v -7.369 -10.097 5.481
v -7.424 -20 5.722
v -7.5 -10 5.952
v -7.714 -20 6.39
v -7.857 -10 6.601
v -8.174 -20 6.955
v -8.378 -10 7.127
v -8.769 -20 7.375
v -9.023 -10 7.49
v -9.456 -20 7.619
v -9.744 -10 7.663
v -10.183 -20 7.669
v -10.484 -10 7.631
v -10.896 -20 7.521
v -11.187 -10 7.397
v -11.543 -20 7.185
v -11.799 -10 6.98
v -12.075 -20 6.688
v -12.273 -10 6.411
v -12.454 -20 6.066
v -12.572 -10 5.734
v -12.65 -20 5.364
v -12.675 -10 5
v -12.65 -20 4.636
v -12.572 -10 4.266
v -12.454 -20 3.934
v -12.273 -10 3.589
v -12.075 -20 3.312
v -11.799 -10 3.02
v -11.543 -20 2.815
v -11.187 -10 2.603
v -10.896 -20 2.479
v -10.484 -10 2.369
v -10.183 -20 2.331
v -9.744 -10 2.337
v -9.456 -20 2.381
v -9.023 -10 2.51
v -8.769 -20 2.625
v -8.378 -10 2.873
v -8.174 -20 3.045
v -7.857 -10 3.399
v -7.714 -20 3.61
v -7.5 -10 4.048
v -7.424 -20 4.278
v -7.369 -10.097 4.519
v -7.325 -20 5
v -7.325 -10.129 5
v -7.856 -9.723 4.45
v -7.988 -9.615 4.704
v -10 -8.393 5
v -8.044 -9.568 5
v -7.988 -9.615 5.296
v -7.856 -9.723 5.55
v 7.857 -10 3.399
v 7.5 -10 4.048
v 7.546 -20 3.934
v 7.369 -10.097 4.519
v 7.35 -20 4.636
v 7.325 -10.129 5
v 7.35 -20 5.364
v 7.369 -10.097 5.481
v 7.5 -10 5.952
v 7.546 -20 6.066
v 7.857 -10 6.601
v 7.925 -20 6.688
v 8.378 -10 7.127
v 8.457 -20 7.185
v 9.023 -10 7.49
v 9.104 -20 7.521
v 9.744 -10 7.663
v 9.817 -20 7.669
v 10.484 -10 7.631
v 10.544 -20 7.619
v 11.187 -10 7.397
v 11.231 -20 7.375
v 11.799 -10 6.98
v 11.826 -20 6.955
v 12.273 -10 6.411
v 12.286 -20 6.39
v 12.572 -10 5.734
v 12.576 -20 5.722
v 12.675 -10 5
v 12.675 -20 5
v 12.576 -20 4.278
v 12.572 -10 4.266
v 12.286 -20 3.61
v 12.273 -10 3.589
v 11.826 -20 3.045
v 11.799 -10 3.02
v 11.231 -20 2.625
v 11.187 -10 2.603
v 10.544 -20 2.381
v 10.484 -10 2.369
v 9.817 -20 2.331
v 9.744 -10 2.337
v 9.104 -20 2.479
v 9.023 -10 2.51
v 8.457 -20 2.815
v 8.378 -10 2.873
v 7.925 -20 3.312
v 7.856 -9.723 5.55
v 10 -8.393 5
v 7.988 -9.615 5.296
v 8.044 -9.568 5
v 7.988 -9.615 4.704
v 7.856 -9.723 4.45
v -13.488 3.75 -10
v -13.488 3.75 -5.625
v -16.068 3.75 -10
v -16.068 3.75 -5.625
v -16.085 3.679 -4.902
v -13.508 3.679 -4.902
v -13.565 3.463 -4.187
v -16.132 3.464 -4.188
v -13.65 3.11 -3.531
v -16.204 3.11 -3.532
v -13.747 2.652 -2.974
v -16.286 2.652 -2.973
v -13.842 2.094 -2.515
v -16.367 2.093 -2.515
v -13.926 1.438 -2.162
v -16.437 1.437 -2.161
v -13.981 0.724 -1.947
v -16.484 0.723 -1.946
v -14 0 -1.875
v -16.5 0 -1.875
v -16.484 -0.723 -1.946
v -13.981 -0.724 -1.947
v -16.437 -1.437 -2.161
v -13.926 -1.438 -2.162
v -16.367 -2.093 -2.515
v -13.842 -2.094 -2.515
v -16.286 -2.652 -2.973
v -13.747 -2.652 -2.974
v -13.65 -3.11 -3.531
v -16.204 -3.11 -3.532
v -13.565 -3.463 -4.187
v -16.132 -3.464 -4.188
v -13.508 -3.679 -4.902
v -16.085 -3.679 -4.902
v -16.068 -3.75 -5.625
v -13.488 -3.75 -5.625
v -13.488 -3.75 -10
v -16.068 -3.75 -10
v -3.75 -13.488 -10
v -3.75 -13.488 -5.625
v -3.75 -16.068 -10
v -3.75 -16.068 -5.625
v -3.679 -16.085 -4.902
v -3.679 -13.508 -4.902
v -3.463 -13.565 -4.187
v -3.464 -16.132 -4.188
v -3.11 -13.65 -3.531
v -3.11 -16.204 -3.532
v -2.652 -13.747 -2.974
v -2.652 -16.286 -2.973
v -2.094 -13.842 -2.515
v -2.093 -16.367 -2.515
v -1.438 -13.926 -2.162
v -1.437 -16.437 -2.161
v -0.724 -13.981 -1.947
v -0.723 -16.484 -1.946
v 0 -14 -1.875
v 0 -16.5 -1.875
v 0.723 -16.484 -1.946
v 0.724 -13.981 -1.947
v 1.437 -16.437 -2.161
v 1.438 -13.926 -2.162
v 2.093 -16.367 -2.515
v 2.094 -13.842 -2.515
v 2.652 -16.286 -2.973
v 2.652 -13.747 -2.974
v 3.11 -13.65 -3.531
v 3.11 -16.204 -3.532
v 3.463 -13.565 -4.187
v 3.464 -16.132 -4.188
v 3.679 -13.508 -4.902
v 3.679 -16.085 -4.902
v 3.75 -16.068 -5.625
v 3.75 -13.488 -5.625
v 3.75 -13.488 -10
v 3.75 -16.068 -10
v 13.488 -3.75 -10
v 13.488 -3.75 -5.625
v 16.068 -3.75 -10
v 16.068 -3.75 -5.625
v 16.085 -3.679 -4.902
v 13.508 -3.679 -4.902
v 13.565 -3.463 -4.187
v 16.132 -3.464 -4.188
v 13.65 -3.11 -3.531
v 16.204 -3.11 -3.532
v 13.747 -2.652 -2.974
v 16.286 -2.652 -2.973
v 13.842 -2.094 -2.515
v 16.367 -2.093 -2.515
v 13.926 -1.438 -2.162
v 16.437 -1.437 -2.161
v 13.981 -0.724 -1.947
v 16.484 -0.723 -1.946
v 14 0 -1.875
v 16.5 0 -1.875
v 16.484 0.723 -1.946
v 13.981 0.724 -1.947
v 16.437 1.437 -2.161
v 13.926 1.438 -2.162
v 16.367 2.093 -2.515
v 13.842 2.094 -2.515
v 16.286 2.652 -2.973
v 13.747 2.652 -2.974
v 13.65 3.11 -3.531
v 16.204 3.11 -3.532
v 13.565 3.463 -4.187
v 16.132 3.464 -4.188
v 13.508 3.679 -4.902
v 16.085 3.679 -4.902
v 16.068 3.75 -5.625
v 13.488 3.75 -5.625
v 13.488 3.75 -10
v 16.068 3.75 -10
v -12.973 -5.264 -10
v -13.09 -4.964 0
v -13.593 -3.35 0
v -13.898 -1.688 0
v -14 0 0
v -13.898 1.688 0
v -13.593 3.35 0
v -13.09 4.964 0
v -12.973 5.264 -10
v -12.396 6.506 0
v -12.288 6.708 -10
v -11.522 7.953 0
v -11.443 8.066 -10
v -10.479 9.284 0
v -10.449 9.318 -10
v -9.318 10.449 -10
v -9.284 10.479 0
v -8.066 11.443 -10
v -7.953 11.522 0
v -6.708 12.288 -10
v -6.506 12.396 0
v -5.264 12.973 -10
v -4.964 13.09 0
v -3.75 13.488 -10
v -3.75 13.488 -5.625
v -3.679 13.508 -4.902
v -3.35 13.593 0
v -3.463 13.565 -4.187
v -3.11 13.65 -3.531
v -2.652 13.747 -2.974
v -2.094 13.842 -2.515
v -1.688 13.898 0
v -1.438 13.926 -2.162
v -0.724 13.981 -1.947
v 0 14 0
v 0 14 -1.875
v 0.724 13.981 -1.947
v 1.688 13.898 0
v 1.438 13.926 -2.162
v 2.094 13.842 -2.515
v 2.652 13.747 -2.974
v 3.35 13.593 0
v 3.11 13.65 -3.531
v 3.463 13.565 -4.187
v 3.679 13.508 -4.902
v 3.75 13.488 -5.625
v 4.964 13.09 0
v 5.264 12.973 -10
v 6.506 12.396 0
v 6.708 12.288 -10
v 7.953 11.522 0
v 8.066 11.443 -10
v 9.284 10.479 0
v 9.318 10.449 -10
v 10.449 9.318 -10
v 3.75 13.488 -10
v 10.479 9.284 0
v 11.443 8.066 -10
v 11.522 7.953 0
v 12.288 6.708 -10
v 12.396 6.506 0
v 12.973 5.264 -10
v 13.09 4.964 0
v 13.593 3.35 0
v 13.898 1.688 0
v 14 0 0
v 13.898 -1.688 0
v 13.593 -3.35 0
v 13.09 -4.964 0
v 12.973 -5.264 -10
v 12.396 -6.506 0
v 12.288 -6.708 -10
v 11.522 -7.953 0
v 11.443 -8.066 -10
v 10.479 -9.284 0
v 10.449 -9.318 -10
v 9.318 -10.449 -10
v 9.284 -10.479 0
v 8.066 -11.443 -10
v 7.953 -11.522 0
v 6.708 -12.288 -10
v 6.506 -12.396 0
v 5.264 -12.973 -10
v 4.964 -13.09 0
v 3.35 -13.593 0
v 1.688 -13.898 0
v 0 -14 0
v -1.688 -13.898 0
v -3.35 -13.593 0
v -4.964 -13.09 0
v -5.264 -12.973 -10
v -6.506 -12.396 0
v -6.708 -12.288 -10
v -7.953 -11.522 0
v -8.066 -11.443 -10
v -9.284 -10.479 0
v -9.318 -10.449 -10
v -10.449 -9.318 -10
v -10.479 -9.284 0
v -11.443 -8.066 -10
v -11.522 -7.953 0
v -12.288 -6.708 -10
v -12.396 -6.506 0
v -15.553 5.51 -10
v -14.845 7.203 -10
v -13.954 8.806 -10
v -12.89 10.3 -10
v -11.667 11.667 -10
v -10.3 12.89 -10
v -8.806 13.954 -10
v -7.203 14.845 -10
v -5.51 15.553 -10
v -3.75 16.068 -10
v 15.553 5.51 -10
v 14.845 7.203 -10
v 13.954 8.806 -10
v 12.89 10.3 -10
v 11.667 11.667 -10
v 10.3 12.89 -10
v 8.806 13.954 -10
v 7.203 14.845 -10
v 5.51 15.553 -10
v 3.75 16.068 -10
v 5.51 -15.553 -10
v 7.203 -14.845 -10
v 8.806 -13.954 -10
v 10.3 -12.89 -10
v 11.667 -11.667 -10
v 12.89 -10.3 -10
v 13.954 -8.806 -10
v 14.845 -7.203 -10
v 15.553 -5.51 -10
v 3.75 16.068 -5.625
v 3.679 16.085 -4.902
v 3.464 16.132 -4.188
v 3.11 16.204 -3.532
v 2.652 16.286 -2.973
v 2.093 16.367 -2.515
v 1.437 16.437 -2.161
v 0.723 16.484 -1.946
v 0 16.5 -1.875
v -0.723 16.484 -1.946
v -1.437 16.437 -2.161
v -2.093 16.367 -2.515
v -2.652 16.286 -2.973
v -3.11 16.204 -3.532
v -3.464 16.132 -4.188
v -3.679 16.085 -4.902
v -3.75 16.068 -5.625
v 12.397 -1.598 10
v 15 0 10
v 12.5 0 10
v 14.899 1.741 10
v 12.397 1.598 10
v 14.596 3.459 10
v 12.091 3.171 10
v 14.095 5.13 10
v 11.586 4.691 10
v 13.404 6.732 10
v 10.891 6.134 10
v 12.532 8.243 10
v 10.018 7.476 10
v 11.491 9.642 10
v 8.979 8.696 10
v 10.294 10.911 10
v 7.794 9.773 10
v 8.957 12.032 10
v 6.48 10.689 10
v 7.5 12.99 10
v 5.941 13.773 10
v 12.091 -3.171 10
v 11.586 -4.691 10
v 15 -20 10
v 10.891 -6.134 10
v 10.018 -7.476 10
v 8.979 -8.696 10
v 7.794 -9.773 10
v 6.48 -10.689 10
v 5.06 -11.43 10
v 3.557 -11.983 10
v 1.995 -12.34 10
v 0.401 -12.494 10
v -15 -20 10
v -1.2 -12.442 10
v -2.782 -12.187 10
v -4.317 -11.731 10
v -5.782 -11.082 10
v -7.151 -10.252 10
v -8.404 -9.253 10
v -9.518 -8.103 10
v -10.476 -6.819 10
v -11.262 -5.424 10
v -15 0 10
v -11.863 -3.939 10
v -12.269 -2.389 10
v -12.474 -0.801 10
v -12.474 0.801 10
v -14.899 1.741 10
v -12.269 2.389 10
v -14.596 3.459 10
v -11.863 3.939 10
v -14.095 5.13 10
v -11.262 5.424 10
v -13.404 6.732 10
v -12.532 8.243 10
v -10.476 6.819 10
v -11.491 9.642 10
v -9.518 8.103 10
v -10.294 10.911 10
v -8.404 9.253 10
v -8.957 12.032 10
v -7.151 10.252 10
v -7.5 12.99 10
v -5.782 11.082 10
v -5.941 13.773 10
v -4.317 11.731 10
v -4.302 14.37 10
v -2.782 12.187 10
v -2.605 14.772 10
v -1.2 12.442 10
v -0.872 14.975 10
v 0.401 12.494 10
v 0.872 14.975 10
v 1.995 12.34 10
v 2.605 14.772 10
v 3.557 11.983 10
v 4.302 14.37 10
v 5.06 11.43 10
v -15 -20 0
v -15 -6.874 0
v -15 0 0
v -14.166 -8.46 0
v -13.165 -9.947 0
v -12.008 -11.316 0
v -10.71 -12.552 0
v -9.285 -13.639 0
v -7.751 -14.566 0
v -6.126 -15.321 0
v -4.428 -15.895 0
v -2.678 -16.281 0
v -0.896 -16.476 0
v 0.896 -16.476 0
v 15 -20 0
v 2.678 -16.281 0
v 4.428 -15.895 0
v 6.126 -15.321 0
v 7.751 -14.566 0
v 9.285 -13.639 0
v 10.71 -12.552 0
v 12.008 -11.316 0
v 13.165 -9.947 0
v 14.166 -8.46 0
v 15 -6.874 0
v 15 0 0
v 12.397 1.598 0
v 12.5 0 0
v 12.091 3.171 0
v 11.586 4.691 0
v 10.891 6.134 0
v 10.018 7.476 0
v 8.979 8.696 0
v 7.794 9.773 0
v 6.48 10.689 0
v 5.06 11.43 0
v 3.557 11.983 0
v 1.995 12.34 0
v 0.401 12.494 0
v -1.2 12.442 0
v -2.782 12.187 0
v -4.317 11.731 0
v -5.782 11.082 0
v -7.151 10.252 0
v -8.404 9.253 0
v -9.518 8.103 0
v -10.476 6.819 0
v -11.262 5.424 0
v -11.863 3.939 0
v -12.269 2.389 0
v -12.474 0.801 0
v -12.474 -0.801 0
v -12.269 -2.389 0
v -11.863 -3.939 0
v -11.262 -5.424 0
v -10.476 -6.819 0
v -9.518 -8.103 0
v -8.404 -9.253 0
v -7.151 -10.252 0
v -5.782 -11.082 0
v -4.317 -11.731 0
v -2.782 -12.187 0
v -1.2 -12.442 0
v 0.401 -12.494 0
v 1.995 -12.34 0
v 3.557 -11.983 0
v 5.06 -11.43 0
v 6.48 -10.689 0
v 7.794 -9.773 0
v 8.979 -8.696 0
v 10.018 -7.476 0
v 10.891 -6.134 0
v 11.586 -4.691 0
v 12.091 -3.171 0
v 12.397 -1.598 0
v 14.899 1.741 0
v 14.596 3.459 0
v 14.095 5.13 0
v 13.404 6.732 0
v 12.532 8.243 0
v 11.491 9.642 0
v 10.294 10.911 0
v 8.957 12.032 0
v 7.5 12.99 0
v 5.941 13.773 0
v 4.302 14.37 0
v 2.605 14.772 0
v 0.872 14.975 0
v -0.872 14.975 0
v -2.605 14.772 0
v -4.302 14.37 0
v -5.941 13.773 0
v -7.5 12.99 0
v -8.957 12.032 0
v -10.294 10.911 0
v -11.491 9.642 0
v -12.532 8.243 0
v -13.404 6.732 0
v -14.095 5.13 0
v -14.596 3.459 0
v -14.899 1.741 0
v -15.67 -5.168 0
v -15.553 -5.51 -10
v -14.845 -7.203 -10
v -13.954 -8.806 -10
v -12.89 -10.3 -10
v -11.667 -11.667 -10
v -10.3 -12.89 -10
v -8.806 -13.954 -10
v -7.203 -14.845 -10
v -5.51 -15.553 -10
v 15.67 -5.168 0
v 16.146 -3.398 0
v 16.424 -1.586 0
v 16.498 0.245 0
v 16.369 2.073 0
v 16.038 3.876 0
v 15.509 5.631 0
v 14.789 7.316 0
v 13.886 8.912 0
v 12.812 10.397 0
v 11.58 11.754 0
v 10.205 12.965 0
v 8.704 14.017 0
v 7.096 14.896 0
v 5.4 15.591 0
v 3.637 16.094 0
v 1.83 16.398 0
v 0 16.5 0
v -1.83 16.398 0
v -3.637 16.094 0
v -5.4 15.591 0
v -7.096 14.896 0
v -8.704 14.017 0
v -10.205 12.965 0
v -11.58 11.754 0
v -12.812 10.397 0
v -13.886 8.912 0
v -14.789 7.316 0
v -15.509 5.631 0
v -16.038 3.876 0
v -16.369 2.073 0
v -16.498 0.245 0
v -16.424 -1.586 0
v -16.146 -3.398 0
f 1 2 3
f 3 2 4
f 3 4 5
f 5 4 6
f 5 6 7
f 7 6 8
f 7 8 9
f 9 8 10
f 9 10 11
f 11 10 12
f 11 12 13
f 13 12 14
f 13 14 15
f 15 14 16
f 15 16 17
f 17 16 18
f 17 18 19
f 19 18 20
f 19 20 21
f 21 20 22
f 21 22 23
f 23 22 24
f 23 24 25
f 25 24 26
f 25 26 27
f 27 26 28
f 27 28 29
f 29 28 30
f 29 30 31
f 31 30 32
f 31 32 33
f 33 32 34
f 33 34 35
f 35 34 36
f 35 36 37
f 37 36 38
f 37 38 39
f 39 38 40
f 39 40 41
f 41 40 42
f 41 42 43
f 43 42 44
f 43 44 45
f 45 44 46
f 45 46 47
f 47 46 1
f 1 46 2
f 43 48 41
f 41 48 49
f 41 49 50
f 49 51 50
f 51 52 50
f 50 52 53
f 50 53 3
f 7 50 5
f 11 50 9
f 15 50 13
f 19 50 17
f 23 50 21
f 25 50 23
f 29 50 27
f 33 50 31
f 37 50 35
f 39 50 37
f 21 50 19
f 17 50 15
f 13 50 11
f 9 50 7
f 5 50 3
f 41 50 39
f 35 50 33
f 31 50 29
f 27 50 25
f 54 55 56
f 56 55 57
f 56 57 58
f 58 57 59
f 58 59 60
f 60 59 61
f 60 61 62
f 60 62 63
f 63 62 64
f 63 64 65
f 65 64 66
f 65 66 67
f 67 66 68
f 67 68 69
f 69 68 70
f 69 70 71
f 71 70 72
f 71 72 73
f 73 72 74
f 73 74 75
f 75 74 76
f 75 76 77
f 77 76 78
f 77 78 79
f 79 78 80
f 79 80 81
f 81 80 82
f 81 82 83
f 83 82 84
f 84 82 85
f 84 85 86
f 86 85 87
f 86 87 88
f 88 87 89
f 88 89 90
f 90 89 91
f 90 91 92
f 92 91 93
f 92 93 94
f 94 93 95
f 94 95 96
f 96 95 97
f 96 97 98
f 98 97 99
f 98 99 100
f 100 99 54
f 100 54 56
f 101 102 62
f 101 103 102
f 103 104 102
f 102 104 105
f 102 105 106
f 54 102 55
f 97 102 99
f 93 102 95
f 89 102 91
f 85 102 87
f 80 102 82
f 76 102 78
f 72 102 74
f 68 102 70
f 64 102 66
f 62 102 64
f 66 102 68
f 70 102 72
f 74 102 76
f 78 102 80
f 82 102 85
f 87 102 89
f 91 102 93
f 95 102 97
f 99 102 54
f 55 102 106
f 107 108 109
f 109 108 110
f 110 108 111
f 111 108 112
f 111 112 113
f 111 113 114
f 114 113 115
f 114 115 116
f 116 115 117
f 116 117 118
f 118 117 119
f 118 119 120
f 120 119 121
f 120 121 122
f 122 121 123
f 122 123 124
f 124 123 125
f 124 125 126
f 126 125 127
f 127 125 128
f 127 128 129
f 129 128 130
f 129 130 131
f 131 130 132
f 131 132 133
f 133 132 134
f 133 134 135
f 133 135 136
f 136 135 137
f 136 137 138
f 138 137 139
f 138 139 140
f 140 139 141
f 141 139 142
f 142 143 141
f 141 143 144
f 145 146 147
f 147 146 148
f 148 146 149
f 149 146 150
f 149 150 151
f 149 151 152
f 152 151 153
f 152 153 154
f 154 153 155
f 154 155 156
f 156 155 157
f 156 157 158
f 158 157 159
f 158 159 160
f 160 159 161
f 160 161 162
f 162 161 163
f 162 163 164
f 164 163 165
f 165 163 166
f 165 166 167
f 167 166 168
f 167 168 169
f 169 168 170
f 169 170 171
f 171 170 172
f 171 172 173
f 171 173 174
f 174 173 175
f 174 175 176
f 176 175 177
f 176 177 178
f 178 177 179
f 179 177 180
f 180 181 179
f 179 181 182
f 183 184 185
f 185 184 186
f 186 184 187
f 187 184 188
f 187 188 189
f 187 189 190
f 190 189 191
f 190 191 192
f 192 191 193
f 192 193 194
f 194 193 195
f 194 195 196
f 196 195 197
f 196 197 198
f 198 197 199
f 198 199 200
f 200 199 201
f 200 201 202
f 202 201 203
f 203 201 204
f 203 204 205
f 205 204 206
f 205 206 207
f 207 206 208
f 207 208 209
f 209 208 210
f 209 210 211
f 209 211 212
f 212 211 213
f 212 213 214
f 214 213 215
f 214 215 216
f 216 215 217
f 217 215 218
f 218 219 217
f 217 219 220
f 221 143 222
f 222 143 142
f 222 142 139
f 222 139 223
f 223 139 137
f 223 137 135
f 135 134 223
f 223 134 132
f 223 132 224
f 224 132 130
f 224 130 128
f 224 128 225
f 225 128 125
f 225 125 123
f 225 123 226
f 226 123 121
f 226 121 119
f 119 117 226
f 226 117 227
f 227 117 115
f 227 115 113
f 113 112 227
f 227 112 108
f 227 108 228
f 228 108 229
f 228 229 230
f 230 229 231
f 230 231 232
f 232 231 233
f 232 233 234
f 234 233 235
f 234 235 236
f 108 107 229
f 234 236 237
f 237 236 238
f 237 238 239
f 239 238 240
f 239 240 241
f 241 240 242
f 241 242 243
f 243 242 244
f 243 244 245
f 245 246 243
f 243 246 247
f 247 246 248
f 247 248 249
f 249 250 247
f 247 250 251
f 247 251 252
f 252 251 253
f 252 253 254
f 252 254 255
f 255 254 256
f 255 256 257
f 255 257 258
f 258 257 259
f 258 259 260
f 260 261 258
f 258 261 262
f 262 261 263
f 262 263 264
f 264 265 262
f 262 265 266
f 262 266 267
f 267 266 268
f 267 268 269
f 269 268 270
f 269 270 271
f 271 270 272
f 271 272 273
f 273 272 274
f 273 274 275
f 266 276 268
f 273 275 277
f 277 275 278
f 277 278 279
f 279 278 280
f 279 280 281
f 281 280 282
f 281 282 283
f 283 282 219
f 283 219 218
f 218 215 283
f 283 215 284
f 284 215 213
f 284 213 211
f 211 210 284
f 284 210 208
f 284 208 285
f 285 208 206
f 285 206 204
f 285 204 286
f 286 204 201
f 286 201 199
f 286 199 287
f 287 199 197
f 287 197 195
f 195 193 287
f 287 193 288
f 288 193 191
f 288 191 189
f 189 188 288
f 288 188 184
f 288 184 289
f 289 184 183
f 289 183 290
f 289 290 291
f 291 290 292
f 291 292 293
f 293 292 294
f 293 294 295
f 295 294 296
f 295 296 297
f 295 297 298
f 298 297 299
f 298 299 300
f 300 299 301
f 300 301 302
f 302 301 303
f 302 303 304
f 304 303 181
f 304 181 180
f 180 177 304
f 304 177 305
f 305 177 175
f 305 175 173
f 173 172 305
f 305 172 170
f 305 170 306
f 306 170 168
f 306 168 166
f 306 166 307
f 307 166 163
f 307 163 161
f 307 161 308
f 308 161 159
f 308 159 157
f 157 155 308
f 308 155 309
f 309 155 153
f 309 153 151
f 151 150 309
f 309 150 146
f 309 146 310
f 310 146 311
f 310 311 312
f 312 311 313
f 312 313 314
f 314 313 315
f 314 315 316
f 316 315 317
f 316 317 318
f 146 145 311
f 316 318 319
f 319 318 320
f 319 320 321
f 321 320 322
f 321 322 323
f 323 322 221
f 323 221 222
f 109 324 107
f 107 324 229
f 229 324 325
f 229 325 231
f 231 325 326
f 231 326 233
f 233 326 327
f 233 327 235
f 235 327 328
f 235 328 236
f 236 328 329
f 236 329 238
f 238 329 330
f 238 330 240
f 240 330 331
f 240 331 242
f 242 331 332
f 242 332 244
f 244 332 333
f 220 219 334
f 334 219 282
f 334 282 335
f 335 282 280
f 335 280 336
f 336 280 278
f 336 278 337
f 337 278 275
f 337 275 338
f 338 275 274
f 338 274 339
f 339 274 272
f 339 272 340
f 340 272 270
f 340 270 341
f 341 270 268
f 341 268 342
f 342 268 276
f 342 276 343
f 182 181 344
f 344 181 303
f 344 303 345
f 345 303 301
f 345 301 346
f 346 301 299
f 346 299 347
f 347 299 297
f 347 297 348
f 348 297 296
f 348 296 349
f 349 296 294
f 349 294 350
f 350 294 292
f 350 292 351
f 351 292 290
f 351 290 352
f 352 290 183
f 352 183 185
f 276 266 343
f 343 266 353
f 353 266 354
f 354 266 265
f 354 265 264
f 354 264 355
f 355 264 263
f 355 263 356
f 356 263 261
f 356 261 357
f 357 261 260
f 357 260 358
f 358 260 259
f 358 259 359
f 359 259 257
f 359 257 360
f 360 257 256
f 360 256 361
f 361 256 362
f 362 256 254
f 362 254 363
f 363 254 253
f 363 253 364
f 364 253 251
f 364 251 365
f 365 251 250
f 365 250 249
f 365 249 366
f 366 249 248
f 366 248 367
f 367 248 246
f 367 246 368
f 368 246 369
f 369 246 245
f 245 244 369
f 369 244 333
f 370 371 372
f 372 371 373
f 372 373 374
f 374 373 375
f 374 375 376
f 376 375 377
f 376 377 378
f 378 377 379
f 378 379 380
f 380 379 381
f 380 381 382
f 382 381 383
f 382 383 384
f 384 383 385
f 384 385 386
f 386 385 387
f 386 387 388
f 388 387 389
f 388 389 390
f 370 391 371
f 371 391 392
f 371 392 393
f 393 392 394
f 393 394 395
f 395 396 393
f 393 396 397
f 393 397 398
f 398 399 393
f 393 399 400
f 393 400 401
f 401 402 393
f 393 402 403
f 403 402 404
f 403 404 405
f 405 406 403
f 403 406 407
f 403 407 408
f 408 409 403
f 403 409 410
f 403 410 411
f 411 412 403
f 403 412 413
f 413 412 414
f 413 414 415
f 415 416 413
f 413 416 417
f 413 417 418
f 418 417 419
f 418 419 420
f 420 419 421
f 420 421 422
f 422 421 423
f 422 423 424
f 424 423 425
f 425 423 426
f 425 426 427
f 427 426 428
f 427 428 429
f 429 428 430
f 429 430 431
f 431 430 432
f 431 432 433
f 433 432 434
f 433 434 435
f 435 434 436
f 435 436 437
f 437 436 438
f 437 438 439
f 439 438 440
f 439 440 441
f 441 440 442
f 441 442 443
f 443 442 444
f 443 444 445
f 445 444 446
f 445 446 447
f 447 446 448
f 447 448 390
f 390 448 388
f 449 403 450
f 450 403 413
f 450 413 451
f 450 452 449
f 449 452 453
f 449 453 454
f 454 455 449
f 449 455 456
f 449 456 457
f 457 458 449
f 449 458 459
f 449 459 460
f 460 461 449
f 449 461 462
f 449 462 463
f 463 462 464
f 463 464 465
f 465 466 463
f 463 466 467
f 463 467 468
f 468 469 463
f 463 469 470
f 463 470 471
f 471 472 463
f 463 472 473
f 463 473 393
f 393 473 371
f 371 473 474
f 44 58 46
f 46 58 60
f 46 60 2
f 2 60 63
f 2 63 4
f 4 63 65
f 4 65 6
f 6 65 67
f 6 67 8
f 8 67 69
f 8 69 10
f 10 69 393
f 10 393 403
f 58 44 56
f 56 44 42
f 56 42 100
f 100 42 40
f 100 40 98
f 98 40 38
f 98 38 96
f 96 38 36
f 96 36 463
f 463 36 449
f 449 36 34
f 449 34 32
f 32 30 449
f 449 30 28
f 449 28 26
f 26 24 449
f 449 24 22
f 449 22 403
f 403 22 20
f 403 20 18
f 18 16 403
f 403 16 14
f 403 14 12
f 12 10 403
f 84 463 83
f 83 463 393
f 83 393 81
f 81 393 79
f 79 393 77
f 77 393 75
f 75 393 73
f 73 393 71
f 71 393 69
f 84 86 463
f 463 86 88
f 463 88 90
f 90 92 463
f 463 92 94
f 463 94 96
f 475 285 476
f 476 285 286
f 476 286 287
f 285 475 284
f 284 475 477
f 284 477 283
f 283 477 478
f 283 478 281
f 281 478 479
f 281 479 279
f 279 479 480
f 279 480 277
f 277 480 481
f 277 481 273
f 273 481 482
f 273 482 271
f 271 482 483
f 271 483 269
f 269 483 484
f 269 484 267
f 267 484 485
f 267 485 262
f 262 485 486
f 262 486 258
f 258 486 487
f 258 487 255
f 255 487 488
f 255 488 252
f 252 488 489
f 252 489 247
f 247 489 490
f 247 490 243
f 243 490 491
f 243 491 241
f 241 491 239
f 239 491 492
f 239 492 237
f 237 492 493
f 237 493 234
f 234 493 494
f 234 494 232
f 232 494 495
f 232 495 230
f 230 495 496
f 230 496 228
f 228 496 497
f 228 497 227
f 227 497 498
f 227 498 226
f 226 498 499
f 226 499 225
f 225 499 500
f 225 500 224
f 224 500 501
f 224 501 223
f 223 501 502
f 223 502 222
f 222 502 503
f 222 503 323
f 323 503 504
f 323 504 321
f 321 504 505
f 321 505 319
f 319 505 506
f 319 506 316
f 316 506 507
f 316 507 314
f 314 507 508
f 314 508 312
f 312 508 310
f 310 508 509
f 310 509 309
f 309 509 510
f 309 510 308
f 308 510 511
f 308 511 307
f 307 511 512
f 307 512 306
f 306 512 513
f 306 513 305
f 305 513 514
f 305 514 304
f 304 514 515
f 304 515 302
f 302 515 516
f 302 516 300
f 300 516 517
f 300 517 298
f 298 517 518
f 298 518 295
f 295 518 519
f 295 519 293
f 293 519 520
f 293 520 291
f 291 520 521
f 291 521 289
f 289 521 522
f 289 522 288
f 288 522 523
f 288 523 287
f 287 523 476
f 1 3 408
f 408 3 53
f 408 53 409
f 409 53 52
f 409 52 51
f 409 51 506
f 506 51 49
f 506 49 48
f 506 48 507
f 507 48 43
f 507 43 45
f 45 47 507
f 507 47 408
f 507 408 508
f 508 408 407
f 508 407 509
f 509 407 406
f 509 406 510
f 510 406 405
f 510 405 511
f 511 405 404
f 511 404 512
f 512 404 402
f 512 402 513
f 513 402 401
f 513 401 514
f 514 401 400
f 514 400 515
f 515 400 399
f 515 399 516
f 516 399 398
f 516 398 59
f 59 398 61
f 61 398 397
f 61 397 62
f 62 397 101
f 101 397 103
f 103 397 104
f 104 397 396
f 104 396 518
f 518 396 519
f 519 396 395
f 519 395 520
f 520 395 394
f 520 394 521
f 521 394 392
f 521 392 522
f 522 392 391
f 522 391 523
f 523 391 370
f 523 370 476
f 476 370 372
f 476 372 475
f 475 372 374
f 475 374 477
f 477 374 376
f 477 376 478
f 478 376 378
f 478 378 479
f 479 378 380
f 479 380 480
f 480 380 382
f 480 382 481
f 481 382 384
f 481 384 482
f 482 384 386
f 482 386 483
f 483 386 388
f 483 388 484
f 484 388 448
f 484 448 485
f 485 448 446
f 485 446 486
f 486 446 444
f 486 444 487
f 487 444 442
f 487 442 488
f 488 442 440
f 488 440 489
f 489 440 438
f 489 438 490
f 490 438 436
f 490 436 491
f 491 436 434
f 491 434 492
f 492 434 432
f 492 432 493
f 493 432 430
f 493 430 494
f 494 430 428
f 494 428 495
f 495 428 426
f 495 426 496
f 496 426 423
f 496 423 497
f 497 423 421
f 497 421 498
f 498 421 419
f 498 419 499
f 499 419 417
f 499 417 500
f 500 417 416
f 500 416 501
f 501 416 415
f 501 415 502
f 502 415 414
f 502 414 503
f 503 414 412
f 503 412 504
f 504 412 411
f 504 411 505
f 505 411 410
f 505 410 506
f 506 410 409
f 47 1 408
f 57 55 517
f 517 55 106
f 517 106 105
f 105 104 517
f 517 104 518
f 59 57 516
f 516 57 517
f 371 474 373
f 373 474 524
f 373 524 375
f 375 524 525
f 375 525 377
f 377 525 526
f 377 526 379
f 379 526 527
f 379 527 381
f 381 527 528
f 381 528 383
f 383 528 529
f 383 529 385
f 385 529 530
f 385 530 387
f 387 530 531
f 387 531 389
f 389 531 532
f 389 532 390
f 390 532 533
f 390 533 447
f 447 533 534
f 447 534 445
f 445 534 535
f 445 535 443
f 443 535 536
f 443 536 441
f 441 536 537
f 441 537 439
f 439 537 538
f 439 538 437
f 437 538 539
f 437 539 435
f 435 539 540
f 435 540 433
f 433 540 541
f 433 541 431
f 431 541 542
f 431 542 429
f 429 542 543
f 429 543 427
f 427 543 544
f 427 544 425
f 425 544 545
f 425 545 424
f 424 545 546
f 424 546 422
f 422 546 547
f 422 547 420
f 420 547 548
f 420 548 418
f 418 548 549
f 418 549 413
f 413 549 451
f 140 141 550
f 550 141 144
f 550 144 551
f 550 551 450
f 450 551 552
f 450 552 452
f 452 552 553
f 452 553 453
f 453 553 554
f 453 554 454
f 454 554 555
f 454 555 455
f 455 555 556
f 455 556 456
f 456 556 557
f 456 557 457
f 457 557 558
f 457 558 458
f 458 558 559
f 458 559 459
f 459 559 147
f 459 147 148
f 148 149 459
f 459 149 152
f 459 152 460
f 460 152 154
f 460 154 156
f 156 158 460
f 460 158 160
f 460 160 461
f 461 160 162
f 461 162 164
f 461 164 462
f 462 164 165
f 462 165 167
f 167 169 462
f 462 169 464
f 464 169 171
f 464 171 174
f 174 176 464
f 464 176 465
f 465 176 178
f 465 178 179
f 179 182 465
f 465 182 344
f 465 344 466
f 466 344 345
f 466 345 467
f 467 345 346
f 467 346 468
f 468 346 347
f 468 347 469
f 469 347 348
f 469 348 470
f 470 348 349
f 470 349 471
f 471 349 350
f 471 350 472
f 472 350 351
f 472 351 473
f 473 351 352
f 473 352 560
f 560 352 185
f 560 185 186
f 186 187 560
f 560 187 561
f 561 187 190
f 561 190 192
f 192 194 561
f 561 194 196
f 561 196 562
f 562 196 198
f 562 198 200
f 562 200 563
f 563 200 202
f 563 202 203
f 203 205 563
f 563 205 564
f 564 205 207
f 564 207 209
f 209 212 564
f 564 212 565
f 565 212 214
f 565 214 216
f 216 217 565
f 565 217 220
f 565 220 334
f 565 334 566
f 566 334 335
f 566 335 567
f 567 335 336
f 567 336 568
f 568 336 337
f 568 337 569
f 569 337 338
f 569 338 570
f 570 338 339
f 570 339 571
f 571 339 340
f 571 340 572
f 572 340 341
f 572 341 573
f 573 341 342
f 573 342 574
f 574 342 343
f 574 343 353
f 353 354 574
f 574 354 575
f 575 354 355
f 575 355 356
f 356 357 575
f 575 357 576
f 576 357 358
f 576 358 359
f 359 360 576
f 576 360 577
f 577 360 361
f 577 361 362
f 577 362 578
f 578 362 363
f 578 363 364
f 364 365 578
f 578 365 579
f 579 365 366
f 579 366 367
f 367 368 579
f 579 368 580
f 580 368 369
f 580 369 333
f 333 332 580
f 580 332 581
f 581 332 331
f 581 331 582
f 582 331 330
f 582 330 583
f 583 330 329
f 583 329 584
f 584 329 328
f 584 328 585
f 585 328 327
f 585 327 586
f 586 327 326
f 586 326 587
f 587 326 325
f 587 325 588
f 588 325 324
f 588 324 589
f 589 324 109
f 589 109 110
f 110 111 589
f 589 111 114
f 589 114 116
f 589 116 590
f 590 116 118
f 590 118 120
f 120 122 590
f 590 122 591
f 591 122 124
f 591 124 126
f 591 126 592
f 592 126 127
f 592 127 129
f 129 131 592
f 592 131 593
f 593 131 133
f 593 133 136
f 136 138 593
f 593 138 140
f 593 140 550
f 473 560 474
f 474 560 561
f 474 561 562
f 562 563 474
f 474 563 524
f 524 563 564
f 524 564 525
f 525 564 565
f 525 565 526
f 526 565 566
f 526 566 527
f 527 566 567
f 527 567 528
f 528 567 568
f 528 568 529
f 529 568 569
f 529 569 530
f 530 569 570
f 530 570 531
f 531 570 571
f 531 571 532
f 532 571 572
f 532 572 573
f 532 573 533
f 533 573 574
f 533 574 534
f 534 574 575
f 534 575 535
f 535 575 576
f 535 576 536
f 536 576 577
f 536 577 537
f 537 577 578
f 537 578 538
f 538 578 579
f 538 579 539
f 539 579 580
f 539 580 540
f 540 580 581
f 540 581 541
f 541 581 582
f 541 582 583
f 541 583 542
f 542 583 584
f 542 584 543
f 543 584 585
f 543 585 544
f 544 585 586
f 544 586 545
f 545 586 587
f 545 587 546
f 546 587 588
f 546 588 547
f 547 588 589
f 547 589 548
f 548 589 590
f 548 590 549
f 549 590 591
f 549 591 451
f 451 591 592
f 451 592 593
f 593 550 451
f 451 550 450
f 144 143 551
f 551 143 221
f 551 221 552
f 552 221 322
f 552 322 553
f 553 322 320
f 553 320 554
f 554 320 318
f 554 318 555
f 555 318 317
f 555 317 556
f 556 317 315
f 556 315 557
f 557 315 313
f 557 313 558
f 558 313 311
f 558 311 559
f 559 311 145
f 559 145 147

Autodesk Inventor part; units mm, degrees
ref_plane "YZ Plane" through (0, 0, 0) normal (1, 0, 0) x (0, 1, 0)
sketch "Sketch2" plane through (0, 0, 0) normal (0, 0, 1) x (1, 0, 0)
  circle A0 centre (0, 0) radius 14
  circle A1 centre (0, 0) radius 12.5
  circle A2 centre (0, 0) radius 16.5
  circle A3 centre (0, 0) radius 15
  dimension "d0" = 28
  dimension "d1" = 25
  dimension "d2" = 33
  dimension "d3" = 30
extrude "Extrusion1" add sketch "Sketch2" against normal blind 10 contours A2 | A3
extrude "Extrusion2" add sketch "Sketch2" along normal blind 10 contours A0 | A3
ref_plane "Work Plane1" through (0, -20, 0) normal (0, 1, 0) x (-1, 0, 0)
sketch "Sketch3" plane through (0, -20, 0) normal (0, 1, 0) x (-1, 0, 0)
  line L0 (15, 10) -> (-15, 10) projected
  line L1 (-15, 0) -> (15, 0) projected
  line L2 (-26, 10) -> (-26, 0)
  line L3 (26, 10) -> (26, 0)
  line L4 (15, 0) -> (15, 10)
  line L5 (16.5, 0) -> (-16.5, 0) projected
  line L6 (-15, 0) -> (-16.5, 0)
  line L7 (-16.5, 0) -> (-16.5, 10)
  line L8 (-16.5, 10) -> (-15, 10)
  line L9 (16.5, 0) -> (16.5, 10)
  line L10 (16.5, 10) -> (15, 10)
  line L11 (-26, 0) -> (-16.5, 0)
  line L12 (-26, 10) -> (-16.5, 10)
  line L13 (16.5, 10) -> (26, 10)
  line L14 (-15, 0) -> (-15, 10)
  dimension "d9" = 11
  dimension "d10" = 11
  dimension "d11" = 10
  dimension "d36" = 33
extrude "Extrusion3" add sketch "Sketch3" along normal blind 20 contours L4 L1 L14 L0
extrude "Extrusion4" [suppressed]
extrude "Extrusion5" cut sketch "Sketch2" along normal through all contours A1
sketch "Sketch4" plane through (0, -10, 0) normal (0, 1, 0) x (1, 0, 0)
  line L0 (26, -10) -> (26, 0) projected
  line L1 (15, -10) -> (26, -10) projected
  line L2 (-26, -10) -> (-15, -10) projected
  line L3 (-26, 0) -> (-26, -10) projected
  point P0 (0, 0)
  point P1 (20.5, -4.5)
  point P2 (-21, -5)
  dimension "d18" = 5.5
  dimension "d19" = 5.5
  dimension "d20" = 5
  dimension "d21" = 5
hole "Hole1" [suppressed]
ref_plane "Work Plane2" through (0, 16.5, 0) normal (0, -1, 0) x (1, 0, 0)
sketch "Sketch5" plane through (0, 16.5, 0) normal (0, -1, 0) x (1, 0, 0)
  line L0 (-16.5, -10) -> (16.5, -10) projected
  line L1 (-3.75, -10) -> (3.75, -10)
  line L2 (3.75, -10) -> (3.75, -5.625)
  line L3 (3.75, -5.625) -> (-3.75, -5.625)
  line L4 (-3.75, -5.625) -> (-3.75, -10)
  arc A0 (3.75, -5.625) -> (-3.75, -5.625) centre (0, -5.625) ccw
  line L5 (15, 0) -> (-15, 0) projected
  circle A1 centre (0, -5.625) radius 2.125 projected
  point P0 (0, 0)
  point P1 (0, 0)
  point P2 (-33, 0)
  point P3 (-33, 0)
  dimension "d29" = 3.75
extrude "Extrusion6" cut sketch "Sketch5" along normal blind 10
pattern_circular "Circular Pattern1" count 4 over 360 about axis through (0, 0, 0) along (0, 0, -1) of "Extrusion6"
sketch "Sketch6" plane through (0, -20, 0) normal (0, -1, 0) x (1, 0, 0)
  line L0 (15, 10) -> (15, 0) projected
  line L1 (-15, 0) -> (-15, 10) projected
  point P0 (0, 0)
  point P1 (10, 5)
  point P2 (-10, 5)
  point P3 (15, 5)
  point P4 (15, 5)
  dimension "d44" = 5
  dimension "d45" = 5
hole "Hole2" at (10, -20, 5) at (-10, -20, 5) direction (0, 1, 0) diameter 5.35 depth 10 tip angle 118
equation "\"d18\" = 0.5 * d9"
equation "\"d19\" = 0.5 * d9"
equation "\"d20\" = 0.5 * d11"
equation "\"d21\" = 0.5 * d11"
properties part number "Adafruit_1528_4699_ND_House_01"
